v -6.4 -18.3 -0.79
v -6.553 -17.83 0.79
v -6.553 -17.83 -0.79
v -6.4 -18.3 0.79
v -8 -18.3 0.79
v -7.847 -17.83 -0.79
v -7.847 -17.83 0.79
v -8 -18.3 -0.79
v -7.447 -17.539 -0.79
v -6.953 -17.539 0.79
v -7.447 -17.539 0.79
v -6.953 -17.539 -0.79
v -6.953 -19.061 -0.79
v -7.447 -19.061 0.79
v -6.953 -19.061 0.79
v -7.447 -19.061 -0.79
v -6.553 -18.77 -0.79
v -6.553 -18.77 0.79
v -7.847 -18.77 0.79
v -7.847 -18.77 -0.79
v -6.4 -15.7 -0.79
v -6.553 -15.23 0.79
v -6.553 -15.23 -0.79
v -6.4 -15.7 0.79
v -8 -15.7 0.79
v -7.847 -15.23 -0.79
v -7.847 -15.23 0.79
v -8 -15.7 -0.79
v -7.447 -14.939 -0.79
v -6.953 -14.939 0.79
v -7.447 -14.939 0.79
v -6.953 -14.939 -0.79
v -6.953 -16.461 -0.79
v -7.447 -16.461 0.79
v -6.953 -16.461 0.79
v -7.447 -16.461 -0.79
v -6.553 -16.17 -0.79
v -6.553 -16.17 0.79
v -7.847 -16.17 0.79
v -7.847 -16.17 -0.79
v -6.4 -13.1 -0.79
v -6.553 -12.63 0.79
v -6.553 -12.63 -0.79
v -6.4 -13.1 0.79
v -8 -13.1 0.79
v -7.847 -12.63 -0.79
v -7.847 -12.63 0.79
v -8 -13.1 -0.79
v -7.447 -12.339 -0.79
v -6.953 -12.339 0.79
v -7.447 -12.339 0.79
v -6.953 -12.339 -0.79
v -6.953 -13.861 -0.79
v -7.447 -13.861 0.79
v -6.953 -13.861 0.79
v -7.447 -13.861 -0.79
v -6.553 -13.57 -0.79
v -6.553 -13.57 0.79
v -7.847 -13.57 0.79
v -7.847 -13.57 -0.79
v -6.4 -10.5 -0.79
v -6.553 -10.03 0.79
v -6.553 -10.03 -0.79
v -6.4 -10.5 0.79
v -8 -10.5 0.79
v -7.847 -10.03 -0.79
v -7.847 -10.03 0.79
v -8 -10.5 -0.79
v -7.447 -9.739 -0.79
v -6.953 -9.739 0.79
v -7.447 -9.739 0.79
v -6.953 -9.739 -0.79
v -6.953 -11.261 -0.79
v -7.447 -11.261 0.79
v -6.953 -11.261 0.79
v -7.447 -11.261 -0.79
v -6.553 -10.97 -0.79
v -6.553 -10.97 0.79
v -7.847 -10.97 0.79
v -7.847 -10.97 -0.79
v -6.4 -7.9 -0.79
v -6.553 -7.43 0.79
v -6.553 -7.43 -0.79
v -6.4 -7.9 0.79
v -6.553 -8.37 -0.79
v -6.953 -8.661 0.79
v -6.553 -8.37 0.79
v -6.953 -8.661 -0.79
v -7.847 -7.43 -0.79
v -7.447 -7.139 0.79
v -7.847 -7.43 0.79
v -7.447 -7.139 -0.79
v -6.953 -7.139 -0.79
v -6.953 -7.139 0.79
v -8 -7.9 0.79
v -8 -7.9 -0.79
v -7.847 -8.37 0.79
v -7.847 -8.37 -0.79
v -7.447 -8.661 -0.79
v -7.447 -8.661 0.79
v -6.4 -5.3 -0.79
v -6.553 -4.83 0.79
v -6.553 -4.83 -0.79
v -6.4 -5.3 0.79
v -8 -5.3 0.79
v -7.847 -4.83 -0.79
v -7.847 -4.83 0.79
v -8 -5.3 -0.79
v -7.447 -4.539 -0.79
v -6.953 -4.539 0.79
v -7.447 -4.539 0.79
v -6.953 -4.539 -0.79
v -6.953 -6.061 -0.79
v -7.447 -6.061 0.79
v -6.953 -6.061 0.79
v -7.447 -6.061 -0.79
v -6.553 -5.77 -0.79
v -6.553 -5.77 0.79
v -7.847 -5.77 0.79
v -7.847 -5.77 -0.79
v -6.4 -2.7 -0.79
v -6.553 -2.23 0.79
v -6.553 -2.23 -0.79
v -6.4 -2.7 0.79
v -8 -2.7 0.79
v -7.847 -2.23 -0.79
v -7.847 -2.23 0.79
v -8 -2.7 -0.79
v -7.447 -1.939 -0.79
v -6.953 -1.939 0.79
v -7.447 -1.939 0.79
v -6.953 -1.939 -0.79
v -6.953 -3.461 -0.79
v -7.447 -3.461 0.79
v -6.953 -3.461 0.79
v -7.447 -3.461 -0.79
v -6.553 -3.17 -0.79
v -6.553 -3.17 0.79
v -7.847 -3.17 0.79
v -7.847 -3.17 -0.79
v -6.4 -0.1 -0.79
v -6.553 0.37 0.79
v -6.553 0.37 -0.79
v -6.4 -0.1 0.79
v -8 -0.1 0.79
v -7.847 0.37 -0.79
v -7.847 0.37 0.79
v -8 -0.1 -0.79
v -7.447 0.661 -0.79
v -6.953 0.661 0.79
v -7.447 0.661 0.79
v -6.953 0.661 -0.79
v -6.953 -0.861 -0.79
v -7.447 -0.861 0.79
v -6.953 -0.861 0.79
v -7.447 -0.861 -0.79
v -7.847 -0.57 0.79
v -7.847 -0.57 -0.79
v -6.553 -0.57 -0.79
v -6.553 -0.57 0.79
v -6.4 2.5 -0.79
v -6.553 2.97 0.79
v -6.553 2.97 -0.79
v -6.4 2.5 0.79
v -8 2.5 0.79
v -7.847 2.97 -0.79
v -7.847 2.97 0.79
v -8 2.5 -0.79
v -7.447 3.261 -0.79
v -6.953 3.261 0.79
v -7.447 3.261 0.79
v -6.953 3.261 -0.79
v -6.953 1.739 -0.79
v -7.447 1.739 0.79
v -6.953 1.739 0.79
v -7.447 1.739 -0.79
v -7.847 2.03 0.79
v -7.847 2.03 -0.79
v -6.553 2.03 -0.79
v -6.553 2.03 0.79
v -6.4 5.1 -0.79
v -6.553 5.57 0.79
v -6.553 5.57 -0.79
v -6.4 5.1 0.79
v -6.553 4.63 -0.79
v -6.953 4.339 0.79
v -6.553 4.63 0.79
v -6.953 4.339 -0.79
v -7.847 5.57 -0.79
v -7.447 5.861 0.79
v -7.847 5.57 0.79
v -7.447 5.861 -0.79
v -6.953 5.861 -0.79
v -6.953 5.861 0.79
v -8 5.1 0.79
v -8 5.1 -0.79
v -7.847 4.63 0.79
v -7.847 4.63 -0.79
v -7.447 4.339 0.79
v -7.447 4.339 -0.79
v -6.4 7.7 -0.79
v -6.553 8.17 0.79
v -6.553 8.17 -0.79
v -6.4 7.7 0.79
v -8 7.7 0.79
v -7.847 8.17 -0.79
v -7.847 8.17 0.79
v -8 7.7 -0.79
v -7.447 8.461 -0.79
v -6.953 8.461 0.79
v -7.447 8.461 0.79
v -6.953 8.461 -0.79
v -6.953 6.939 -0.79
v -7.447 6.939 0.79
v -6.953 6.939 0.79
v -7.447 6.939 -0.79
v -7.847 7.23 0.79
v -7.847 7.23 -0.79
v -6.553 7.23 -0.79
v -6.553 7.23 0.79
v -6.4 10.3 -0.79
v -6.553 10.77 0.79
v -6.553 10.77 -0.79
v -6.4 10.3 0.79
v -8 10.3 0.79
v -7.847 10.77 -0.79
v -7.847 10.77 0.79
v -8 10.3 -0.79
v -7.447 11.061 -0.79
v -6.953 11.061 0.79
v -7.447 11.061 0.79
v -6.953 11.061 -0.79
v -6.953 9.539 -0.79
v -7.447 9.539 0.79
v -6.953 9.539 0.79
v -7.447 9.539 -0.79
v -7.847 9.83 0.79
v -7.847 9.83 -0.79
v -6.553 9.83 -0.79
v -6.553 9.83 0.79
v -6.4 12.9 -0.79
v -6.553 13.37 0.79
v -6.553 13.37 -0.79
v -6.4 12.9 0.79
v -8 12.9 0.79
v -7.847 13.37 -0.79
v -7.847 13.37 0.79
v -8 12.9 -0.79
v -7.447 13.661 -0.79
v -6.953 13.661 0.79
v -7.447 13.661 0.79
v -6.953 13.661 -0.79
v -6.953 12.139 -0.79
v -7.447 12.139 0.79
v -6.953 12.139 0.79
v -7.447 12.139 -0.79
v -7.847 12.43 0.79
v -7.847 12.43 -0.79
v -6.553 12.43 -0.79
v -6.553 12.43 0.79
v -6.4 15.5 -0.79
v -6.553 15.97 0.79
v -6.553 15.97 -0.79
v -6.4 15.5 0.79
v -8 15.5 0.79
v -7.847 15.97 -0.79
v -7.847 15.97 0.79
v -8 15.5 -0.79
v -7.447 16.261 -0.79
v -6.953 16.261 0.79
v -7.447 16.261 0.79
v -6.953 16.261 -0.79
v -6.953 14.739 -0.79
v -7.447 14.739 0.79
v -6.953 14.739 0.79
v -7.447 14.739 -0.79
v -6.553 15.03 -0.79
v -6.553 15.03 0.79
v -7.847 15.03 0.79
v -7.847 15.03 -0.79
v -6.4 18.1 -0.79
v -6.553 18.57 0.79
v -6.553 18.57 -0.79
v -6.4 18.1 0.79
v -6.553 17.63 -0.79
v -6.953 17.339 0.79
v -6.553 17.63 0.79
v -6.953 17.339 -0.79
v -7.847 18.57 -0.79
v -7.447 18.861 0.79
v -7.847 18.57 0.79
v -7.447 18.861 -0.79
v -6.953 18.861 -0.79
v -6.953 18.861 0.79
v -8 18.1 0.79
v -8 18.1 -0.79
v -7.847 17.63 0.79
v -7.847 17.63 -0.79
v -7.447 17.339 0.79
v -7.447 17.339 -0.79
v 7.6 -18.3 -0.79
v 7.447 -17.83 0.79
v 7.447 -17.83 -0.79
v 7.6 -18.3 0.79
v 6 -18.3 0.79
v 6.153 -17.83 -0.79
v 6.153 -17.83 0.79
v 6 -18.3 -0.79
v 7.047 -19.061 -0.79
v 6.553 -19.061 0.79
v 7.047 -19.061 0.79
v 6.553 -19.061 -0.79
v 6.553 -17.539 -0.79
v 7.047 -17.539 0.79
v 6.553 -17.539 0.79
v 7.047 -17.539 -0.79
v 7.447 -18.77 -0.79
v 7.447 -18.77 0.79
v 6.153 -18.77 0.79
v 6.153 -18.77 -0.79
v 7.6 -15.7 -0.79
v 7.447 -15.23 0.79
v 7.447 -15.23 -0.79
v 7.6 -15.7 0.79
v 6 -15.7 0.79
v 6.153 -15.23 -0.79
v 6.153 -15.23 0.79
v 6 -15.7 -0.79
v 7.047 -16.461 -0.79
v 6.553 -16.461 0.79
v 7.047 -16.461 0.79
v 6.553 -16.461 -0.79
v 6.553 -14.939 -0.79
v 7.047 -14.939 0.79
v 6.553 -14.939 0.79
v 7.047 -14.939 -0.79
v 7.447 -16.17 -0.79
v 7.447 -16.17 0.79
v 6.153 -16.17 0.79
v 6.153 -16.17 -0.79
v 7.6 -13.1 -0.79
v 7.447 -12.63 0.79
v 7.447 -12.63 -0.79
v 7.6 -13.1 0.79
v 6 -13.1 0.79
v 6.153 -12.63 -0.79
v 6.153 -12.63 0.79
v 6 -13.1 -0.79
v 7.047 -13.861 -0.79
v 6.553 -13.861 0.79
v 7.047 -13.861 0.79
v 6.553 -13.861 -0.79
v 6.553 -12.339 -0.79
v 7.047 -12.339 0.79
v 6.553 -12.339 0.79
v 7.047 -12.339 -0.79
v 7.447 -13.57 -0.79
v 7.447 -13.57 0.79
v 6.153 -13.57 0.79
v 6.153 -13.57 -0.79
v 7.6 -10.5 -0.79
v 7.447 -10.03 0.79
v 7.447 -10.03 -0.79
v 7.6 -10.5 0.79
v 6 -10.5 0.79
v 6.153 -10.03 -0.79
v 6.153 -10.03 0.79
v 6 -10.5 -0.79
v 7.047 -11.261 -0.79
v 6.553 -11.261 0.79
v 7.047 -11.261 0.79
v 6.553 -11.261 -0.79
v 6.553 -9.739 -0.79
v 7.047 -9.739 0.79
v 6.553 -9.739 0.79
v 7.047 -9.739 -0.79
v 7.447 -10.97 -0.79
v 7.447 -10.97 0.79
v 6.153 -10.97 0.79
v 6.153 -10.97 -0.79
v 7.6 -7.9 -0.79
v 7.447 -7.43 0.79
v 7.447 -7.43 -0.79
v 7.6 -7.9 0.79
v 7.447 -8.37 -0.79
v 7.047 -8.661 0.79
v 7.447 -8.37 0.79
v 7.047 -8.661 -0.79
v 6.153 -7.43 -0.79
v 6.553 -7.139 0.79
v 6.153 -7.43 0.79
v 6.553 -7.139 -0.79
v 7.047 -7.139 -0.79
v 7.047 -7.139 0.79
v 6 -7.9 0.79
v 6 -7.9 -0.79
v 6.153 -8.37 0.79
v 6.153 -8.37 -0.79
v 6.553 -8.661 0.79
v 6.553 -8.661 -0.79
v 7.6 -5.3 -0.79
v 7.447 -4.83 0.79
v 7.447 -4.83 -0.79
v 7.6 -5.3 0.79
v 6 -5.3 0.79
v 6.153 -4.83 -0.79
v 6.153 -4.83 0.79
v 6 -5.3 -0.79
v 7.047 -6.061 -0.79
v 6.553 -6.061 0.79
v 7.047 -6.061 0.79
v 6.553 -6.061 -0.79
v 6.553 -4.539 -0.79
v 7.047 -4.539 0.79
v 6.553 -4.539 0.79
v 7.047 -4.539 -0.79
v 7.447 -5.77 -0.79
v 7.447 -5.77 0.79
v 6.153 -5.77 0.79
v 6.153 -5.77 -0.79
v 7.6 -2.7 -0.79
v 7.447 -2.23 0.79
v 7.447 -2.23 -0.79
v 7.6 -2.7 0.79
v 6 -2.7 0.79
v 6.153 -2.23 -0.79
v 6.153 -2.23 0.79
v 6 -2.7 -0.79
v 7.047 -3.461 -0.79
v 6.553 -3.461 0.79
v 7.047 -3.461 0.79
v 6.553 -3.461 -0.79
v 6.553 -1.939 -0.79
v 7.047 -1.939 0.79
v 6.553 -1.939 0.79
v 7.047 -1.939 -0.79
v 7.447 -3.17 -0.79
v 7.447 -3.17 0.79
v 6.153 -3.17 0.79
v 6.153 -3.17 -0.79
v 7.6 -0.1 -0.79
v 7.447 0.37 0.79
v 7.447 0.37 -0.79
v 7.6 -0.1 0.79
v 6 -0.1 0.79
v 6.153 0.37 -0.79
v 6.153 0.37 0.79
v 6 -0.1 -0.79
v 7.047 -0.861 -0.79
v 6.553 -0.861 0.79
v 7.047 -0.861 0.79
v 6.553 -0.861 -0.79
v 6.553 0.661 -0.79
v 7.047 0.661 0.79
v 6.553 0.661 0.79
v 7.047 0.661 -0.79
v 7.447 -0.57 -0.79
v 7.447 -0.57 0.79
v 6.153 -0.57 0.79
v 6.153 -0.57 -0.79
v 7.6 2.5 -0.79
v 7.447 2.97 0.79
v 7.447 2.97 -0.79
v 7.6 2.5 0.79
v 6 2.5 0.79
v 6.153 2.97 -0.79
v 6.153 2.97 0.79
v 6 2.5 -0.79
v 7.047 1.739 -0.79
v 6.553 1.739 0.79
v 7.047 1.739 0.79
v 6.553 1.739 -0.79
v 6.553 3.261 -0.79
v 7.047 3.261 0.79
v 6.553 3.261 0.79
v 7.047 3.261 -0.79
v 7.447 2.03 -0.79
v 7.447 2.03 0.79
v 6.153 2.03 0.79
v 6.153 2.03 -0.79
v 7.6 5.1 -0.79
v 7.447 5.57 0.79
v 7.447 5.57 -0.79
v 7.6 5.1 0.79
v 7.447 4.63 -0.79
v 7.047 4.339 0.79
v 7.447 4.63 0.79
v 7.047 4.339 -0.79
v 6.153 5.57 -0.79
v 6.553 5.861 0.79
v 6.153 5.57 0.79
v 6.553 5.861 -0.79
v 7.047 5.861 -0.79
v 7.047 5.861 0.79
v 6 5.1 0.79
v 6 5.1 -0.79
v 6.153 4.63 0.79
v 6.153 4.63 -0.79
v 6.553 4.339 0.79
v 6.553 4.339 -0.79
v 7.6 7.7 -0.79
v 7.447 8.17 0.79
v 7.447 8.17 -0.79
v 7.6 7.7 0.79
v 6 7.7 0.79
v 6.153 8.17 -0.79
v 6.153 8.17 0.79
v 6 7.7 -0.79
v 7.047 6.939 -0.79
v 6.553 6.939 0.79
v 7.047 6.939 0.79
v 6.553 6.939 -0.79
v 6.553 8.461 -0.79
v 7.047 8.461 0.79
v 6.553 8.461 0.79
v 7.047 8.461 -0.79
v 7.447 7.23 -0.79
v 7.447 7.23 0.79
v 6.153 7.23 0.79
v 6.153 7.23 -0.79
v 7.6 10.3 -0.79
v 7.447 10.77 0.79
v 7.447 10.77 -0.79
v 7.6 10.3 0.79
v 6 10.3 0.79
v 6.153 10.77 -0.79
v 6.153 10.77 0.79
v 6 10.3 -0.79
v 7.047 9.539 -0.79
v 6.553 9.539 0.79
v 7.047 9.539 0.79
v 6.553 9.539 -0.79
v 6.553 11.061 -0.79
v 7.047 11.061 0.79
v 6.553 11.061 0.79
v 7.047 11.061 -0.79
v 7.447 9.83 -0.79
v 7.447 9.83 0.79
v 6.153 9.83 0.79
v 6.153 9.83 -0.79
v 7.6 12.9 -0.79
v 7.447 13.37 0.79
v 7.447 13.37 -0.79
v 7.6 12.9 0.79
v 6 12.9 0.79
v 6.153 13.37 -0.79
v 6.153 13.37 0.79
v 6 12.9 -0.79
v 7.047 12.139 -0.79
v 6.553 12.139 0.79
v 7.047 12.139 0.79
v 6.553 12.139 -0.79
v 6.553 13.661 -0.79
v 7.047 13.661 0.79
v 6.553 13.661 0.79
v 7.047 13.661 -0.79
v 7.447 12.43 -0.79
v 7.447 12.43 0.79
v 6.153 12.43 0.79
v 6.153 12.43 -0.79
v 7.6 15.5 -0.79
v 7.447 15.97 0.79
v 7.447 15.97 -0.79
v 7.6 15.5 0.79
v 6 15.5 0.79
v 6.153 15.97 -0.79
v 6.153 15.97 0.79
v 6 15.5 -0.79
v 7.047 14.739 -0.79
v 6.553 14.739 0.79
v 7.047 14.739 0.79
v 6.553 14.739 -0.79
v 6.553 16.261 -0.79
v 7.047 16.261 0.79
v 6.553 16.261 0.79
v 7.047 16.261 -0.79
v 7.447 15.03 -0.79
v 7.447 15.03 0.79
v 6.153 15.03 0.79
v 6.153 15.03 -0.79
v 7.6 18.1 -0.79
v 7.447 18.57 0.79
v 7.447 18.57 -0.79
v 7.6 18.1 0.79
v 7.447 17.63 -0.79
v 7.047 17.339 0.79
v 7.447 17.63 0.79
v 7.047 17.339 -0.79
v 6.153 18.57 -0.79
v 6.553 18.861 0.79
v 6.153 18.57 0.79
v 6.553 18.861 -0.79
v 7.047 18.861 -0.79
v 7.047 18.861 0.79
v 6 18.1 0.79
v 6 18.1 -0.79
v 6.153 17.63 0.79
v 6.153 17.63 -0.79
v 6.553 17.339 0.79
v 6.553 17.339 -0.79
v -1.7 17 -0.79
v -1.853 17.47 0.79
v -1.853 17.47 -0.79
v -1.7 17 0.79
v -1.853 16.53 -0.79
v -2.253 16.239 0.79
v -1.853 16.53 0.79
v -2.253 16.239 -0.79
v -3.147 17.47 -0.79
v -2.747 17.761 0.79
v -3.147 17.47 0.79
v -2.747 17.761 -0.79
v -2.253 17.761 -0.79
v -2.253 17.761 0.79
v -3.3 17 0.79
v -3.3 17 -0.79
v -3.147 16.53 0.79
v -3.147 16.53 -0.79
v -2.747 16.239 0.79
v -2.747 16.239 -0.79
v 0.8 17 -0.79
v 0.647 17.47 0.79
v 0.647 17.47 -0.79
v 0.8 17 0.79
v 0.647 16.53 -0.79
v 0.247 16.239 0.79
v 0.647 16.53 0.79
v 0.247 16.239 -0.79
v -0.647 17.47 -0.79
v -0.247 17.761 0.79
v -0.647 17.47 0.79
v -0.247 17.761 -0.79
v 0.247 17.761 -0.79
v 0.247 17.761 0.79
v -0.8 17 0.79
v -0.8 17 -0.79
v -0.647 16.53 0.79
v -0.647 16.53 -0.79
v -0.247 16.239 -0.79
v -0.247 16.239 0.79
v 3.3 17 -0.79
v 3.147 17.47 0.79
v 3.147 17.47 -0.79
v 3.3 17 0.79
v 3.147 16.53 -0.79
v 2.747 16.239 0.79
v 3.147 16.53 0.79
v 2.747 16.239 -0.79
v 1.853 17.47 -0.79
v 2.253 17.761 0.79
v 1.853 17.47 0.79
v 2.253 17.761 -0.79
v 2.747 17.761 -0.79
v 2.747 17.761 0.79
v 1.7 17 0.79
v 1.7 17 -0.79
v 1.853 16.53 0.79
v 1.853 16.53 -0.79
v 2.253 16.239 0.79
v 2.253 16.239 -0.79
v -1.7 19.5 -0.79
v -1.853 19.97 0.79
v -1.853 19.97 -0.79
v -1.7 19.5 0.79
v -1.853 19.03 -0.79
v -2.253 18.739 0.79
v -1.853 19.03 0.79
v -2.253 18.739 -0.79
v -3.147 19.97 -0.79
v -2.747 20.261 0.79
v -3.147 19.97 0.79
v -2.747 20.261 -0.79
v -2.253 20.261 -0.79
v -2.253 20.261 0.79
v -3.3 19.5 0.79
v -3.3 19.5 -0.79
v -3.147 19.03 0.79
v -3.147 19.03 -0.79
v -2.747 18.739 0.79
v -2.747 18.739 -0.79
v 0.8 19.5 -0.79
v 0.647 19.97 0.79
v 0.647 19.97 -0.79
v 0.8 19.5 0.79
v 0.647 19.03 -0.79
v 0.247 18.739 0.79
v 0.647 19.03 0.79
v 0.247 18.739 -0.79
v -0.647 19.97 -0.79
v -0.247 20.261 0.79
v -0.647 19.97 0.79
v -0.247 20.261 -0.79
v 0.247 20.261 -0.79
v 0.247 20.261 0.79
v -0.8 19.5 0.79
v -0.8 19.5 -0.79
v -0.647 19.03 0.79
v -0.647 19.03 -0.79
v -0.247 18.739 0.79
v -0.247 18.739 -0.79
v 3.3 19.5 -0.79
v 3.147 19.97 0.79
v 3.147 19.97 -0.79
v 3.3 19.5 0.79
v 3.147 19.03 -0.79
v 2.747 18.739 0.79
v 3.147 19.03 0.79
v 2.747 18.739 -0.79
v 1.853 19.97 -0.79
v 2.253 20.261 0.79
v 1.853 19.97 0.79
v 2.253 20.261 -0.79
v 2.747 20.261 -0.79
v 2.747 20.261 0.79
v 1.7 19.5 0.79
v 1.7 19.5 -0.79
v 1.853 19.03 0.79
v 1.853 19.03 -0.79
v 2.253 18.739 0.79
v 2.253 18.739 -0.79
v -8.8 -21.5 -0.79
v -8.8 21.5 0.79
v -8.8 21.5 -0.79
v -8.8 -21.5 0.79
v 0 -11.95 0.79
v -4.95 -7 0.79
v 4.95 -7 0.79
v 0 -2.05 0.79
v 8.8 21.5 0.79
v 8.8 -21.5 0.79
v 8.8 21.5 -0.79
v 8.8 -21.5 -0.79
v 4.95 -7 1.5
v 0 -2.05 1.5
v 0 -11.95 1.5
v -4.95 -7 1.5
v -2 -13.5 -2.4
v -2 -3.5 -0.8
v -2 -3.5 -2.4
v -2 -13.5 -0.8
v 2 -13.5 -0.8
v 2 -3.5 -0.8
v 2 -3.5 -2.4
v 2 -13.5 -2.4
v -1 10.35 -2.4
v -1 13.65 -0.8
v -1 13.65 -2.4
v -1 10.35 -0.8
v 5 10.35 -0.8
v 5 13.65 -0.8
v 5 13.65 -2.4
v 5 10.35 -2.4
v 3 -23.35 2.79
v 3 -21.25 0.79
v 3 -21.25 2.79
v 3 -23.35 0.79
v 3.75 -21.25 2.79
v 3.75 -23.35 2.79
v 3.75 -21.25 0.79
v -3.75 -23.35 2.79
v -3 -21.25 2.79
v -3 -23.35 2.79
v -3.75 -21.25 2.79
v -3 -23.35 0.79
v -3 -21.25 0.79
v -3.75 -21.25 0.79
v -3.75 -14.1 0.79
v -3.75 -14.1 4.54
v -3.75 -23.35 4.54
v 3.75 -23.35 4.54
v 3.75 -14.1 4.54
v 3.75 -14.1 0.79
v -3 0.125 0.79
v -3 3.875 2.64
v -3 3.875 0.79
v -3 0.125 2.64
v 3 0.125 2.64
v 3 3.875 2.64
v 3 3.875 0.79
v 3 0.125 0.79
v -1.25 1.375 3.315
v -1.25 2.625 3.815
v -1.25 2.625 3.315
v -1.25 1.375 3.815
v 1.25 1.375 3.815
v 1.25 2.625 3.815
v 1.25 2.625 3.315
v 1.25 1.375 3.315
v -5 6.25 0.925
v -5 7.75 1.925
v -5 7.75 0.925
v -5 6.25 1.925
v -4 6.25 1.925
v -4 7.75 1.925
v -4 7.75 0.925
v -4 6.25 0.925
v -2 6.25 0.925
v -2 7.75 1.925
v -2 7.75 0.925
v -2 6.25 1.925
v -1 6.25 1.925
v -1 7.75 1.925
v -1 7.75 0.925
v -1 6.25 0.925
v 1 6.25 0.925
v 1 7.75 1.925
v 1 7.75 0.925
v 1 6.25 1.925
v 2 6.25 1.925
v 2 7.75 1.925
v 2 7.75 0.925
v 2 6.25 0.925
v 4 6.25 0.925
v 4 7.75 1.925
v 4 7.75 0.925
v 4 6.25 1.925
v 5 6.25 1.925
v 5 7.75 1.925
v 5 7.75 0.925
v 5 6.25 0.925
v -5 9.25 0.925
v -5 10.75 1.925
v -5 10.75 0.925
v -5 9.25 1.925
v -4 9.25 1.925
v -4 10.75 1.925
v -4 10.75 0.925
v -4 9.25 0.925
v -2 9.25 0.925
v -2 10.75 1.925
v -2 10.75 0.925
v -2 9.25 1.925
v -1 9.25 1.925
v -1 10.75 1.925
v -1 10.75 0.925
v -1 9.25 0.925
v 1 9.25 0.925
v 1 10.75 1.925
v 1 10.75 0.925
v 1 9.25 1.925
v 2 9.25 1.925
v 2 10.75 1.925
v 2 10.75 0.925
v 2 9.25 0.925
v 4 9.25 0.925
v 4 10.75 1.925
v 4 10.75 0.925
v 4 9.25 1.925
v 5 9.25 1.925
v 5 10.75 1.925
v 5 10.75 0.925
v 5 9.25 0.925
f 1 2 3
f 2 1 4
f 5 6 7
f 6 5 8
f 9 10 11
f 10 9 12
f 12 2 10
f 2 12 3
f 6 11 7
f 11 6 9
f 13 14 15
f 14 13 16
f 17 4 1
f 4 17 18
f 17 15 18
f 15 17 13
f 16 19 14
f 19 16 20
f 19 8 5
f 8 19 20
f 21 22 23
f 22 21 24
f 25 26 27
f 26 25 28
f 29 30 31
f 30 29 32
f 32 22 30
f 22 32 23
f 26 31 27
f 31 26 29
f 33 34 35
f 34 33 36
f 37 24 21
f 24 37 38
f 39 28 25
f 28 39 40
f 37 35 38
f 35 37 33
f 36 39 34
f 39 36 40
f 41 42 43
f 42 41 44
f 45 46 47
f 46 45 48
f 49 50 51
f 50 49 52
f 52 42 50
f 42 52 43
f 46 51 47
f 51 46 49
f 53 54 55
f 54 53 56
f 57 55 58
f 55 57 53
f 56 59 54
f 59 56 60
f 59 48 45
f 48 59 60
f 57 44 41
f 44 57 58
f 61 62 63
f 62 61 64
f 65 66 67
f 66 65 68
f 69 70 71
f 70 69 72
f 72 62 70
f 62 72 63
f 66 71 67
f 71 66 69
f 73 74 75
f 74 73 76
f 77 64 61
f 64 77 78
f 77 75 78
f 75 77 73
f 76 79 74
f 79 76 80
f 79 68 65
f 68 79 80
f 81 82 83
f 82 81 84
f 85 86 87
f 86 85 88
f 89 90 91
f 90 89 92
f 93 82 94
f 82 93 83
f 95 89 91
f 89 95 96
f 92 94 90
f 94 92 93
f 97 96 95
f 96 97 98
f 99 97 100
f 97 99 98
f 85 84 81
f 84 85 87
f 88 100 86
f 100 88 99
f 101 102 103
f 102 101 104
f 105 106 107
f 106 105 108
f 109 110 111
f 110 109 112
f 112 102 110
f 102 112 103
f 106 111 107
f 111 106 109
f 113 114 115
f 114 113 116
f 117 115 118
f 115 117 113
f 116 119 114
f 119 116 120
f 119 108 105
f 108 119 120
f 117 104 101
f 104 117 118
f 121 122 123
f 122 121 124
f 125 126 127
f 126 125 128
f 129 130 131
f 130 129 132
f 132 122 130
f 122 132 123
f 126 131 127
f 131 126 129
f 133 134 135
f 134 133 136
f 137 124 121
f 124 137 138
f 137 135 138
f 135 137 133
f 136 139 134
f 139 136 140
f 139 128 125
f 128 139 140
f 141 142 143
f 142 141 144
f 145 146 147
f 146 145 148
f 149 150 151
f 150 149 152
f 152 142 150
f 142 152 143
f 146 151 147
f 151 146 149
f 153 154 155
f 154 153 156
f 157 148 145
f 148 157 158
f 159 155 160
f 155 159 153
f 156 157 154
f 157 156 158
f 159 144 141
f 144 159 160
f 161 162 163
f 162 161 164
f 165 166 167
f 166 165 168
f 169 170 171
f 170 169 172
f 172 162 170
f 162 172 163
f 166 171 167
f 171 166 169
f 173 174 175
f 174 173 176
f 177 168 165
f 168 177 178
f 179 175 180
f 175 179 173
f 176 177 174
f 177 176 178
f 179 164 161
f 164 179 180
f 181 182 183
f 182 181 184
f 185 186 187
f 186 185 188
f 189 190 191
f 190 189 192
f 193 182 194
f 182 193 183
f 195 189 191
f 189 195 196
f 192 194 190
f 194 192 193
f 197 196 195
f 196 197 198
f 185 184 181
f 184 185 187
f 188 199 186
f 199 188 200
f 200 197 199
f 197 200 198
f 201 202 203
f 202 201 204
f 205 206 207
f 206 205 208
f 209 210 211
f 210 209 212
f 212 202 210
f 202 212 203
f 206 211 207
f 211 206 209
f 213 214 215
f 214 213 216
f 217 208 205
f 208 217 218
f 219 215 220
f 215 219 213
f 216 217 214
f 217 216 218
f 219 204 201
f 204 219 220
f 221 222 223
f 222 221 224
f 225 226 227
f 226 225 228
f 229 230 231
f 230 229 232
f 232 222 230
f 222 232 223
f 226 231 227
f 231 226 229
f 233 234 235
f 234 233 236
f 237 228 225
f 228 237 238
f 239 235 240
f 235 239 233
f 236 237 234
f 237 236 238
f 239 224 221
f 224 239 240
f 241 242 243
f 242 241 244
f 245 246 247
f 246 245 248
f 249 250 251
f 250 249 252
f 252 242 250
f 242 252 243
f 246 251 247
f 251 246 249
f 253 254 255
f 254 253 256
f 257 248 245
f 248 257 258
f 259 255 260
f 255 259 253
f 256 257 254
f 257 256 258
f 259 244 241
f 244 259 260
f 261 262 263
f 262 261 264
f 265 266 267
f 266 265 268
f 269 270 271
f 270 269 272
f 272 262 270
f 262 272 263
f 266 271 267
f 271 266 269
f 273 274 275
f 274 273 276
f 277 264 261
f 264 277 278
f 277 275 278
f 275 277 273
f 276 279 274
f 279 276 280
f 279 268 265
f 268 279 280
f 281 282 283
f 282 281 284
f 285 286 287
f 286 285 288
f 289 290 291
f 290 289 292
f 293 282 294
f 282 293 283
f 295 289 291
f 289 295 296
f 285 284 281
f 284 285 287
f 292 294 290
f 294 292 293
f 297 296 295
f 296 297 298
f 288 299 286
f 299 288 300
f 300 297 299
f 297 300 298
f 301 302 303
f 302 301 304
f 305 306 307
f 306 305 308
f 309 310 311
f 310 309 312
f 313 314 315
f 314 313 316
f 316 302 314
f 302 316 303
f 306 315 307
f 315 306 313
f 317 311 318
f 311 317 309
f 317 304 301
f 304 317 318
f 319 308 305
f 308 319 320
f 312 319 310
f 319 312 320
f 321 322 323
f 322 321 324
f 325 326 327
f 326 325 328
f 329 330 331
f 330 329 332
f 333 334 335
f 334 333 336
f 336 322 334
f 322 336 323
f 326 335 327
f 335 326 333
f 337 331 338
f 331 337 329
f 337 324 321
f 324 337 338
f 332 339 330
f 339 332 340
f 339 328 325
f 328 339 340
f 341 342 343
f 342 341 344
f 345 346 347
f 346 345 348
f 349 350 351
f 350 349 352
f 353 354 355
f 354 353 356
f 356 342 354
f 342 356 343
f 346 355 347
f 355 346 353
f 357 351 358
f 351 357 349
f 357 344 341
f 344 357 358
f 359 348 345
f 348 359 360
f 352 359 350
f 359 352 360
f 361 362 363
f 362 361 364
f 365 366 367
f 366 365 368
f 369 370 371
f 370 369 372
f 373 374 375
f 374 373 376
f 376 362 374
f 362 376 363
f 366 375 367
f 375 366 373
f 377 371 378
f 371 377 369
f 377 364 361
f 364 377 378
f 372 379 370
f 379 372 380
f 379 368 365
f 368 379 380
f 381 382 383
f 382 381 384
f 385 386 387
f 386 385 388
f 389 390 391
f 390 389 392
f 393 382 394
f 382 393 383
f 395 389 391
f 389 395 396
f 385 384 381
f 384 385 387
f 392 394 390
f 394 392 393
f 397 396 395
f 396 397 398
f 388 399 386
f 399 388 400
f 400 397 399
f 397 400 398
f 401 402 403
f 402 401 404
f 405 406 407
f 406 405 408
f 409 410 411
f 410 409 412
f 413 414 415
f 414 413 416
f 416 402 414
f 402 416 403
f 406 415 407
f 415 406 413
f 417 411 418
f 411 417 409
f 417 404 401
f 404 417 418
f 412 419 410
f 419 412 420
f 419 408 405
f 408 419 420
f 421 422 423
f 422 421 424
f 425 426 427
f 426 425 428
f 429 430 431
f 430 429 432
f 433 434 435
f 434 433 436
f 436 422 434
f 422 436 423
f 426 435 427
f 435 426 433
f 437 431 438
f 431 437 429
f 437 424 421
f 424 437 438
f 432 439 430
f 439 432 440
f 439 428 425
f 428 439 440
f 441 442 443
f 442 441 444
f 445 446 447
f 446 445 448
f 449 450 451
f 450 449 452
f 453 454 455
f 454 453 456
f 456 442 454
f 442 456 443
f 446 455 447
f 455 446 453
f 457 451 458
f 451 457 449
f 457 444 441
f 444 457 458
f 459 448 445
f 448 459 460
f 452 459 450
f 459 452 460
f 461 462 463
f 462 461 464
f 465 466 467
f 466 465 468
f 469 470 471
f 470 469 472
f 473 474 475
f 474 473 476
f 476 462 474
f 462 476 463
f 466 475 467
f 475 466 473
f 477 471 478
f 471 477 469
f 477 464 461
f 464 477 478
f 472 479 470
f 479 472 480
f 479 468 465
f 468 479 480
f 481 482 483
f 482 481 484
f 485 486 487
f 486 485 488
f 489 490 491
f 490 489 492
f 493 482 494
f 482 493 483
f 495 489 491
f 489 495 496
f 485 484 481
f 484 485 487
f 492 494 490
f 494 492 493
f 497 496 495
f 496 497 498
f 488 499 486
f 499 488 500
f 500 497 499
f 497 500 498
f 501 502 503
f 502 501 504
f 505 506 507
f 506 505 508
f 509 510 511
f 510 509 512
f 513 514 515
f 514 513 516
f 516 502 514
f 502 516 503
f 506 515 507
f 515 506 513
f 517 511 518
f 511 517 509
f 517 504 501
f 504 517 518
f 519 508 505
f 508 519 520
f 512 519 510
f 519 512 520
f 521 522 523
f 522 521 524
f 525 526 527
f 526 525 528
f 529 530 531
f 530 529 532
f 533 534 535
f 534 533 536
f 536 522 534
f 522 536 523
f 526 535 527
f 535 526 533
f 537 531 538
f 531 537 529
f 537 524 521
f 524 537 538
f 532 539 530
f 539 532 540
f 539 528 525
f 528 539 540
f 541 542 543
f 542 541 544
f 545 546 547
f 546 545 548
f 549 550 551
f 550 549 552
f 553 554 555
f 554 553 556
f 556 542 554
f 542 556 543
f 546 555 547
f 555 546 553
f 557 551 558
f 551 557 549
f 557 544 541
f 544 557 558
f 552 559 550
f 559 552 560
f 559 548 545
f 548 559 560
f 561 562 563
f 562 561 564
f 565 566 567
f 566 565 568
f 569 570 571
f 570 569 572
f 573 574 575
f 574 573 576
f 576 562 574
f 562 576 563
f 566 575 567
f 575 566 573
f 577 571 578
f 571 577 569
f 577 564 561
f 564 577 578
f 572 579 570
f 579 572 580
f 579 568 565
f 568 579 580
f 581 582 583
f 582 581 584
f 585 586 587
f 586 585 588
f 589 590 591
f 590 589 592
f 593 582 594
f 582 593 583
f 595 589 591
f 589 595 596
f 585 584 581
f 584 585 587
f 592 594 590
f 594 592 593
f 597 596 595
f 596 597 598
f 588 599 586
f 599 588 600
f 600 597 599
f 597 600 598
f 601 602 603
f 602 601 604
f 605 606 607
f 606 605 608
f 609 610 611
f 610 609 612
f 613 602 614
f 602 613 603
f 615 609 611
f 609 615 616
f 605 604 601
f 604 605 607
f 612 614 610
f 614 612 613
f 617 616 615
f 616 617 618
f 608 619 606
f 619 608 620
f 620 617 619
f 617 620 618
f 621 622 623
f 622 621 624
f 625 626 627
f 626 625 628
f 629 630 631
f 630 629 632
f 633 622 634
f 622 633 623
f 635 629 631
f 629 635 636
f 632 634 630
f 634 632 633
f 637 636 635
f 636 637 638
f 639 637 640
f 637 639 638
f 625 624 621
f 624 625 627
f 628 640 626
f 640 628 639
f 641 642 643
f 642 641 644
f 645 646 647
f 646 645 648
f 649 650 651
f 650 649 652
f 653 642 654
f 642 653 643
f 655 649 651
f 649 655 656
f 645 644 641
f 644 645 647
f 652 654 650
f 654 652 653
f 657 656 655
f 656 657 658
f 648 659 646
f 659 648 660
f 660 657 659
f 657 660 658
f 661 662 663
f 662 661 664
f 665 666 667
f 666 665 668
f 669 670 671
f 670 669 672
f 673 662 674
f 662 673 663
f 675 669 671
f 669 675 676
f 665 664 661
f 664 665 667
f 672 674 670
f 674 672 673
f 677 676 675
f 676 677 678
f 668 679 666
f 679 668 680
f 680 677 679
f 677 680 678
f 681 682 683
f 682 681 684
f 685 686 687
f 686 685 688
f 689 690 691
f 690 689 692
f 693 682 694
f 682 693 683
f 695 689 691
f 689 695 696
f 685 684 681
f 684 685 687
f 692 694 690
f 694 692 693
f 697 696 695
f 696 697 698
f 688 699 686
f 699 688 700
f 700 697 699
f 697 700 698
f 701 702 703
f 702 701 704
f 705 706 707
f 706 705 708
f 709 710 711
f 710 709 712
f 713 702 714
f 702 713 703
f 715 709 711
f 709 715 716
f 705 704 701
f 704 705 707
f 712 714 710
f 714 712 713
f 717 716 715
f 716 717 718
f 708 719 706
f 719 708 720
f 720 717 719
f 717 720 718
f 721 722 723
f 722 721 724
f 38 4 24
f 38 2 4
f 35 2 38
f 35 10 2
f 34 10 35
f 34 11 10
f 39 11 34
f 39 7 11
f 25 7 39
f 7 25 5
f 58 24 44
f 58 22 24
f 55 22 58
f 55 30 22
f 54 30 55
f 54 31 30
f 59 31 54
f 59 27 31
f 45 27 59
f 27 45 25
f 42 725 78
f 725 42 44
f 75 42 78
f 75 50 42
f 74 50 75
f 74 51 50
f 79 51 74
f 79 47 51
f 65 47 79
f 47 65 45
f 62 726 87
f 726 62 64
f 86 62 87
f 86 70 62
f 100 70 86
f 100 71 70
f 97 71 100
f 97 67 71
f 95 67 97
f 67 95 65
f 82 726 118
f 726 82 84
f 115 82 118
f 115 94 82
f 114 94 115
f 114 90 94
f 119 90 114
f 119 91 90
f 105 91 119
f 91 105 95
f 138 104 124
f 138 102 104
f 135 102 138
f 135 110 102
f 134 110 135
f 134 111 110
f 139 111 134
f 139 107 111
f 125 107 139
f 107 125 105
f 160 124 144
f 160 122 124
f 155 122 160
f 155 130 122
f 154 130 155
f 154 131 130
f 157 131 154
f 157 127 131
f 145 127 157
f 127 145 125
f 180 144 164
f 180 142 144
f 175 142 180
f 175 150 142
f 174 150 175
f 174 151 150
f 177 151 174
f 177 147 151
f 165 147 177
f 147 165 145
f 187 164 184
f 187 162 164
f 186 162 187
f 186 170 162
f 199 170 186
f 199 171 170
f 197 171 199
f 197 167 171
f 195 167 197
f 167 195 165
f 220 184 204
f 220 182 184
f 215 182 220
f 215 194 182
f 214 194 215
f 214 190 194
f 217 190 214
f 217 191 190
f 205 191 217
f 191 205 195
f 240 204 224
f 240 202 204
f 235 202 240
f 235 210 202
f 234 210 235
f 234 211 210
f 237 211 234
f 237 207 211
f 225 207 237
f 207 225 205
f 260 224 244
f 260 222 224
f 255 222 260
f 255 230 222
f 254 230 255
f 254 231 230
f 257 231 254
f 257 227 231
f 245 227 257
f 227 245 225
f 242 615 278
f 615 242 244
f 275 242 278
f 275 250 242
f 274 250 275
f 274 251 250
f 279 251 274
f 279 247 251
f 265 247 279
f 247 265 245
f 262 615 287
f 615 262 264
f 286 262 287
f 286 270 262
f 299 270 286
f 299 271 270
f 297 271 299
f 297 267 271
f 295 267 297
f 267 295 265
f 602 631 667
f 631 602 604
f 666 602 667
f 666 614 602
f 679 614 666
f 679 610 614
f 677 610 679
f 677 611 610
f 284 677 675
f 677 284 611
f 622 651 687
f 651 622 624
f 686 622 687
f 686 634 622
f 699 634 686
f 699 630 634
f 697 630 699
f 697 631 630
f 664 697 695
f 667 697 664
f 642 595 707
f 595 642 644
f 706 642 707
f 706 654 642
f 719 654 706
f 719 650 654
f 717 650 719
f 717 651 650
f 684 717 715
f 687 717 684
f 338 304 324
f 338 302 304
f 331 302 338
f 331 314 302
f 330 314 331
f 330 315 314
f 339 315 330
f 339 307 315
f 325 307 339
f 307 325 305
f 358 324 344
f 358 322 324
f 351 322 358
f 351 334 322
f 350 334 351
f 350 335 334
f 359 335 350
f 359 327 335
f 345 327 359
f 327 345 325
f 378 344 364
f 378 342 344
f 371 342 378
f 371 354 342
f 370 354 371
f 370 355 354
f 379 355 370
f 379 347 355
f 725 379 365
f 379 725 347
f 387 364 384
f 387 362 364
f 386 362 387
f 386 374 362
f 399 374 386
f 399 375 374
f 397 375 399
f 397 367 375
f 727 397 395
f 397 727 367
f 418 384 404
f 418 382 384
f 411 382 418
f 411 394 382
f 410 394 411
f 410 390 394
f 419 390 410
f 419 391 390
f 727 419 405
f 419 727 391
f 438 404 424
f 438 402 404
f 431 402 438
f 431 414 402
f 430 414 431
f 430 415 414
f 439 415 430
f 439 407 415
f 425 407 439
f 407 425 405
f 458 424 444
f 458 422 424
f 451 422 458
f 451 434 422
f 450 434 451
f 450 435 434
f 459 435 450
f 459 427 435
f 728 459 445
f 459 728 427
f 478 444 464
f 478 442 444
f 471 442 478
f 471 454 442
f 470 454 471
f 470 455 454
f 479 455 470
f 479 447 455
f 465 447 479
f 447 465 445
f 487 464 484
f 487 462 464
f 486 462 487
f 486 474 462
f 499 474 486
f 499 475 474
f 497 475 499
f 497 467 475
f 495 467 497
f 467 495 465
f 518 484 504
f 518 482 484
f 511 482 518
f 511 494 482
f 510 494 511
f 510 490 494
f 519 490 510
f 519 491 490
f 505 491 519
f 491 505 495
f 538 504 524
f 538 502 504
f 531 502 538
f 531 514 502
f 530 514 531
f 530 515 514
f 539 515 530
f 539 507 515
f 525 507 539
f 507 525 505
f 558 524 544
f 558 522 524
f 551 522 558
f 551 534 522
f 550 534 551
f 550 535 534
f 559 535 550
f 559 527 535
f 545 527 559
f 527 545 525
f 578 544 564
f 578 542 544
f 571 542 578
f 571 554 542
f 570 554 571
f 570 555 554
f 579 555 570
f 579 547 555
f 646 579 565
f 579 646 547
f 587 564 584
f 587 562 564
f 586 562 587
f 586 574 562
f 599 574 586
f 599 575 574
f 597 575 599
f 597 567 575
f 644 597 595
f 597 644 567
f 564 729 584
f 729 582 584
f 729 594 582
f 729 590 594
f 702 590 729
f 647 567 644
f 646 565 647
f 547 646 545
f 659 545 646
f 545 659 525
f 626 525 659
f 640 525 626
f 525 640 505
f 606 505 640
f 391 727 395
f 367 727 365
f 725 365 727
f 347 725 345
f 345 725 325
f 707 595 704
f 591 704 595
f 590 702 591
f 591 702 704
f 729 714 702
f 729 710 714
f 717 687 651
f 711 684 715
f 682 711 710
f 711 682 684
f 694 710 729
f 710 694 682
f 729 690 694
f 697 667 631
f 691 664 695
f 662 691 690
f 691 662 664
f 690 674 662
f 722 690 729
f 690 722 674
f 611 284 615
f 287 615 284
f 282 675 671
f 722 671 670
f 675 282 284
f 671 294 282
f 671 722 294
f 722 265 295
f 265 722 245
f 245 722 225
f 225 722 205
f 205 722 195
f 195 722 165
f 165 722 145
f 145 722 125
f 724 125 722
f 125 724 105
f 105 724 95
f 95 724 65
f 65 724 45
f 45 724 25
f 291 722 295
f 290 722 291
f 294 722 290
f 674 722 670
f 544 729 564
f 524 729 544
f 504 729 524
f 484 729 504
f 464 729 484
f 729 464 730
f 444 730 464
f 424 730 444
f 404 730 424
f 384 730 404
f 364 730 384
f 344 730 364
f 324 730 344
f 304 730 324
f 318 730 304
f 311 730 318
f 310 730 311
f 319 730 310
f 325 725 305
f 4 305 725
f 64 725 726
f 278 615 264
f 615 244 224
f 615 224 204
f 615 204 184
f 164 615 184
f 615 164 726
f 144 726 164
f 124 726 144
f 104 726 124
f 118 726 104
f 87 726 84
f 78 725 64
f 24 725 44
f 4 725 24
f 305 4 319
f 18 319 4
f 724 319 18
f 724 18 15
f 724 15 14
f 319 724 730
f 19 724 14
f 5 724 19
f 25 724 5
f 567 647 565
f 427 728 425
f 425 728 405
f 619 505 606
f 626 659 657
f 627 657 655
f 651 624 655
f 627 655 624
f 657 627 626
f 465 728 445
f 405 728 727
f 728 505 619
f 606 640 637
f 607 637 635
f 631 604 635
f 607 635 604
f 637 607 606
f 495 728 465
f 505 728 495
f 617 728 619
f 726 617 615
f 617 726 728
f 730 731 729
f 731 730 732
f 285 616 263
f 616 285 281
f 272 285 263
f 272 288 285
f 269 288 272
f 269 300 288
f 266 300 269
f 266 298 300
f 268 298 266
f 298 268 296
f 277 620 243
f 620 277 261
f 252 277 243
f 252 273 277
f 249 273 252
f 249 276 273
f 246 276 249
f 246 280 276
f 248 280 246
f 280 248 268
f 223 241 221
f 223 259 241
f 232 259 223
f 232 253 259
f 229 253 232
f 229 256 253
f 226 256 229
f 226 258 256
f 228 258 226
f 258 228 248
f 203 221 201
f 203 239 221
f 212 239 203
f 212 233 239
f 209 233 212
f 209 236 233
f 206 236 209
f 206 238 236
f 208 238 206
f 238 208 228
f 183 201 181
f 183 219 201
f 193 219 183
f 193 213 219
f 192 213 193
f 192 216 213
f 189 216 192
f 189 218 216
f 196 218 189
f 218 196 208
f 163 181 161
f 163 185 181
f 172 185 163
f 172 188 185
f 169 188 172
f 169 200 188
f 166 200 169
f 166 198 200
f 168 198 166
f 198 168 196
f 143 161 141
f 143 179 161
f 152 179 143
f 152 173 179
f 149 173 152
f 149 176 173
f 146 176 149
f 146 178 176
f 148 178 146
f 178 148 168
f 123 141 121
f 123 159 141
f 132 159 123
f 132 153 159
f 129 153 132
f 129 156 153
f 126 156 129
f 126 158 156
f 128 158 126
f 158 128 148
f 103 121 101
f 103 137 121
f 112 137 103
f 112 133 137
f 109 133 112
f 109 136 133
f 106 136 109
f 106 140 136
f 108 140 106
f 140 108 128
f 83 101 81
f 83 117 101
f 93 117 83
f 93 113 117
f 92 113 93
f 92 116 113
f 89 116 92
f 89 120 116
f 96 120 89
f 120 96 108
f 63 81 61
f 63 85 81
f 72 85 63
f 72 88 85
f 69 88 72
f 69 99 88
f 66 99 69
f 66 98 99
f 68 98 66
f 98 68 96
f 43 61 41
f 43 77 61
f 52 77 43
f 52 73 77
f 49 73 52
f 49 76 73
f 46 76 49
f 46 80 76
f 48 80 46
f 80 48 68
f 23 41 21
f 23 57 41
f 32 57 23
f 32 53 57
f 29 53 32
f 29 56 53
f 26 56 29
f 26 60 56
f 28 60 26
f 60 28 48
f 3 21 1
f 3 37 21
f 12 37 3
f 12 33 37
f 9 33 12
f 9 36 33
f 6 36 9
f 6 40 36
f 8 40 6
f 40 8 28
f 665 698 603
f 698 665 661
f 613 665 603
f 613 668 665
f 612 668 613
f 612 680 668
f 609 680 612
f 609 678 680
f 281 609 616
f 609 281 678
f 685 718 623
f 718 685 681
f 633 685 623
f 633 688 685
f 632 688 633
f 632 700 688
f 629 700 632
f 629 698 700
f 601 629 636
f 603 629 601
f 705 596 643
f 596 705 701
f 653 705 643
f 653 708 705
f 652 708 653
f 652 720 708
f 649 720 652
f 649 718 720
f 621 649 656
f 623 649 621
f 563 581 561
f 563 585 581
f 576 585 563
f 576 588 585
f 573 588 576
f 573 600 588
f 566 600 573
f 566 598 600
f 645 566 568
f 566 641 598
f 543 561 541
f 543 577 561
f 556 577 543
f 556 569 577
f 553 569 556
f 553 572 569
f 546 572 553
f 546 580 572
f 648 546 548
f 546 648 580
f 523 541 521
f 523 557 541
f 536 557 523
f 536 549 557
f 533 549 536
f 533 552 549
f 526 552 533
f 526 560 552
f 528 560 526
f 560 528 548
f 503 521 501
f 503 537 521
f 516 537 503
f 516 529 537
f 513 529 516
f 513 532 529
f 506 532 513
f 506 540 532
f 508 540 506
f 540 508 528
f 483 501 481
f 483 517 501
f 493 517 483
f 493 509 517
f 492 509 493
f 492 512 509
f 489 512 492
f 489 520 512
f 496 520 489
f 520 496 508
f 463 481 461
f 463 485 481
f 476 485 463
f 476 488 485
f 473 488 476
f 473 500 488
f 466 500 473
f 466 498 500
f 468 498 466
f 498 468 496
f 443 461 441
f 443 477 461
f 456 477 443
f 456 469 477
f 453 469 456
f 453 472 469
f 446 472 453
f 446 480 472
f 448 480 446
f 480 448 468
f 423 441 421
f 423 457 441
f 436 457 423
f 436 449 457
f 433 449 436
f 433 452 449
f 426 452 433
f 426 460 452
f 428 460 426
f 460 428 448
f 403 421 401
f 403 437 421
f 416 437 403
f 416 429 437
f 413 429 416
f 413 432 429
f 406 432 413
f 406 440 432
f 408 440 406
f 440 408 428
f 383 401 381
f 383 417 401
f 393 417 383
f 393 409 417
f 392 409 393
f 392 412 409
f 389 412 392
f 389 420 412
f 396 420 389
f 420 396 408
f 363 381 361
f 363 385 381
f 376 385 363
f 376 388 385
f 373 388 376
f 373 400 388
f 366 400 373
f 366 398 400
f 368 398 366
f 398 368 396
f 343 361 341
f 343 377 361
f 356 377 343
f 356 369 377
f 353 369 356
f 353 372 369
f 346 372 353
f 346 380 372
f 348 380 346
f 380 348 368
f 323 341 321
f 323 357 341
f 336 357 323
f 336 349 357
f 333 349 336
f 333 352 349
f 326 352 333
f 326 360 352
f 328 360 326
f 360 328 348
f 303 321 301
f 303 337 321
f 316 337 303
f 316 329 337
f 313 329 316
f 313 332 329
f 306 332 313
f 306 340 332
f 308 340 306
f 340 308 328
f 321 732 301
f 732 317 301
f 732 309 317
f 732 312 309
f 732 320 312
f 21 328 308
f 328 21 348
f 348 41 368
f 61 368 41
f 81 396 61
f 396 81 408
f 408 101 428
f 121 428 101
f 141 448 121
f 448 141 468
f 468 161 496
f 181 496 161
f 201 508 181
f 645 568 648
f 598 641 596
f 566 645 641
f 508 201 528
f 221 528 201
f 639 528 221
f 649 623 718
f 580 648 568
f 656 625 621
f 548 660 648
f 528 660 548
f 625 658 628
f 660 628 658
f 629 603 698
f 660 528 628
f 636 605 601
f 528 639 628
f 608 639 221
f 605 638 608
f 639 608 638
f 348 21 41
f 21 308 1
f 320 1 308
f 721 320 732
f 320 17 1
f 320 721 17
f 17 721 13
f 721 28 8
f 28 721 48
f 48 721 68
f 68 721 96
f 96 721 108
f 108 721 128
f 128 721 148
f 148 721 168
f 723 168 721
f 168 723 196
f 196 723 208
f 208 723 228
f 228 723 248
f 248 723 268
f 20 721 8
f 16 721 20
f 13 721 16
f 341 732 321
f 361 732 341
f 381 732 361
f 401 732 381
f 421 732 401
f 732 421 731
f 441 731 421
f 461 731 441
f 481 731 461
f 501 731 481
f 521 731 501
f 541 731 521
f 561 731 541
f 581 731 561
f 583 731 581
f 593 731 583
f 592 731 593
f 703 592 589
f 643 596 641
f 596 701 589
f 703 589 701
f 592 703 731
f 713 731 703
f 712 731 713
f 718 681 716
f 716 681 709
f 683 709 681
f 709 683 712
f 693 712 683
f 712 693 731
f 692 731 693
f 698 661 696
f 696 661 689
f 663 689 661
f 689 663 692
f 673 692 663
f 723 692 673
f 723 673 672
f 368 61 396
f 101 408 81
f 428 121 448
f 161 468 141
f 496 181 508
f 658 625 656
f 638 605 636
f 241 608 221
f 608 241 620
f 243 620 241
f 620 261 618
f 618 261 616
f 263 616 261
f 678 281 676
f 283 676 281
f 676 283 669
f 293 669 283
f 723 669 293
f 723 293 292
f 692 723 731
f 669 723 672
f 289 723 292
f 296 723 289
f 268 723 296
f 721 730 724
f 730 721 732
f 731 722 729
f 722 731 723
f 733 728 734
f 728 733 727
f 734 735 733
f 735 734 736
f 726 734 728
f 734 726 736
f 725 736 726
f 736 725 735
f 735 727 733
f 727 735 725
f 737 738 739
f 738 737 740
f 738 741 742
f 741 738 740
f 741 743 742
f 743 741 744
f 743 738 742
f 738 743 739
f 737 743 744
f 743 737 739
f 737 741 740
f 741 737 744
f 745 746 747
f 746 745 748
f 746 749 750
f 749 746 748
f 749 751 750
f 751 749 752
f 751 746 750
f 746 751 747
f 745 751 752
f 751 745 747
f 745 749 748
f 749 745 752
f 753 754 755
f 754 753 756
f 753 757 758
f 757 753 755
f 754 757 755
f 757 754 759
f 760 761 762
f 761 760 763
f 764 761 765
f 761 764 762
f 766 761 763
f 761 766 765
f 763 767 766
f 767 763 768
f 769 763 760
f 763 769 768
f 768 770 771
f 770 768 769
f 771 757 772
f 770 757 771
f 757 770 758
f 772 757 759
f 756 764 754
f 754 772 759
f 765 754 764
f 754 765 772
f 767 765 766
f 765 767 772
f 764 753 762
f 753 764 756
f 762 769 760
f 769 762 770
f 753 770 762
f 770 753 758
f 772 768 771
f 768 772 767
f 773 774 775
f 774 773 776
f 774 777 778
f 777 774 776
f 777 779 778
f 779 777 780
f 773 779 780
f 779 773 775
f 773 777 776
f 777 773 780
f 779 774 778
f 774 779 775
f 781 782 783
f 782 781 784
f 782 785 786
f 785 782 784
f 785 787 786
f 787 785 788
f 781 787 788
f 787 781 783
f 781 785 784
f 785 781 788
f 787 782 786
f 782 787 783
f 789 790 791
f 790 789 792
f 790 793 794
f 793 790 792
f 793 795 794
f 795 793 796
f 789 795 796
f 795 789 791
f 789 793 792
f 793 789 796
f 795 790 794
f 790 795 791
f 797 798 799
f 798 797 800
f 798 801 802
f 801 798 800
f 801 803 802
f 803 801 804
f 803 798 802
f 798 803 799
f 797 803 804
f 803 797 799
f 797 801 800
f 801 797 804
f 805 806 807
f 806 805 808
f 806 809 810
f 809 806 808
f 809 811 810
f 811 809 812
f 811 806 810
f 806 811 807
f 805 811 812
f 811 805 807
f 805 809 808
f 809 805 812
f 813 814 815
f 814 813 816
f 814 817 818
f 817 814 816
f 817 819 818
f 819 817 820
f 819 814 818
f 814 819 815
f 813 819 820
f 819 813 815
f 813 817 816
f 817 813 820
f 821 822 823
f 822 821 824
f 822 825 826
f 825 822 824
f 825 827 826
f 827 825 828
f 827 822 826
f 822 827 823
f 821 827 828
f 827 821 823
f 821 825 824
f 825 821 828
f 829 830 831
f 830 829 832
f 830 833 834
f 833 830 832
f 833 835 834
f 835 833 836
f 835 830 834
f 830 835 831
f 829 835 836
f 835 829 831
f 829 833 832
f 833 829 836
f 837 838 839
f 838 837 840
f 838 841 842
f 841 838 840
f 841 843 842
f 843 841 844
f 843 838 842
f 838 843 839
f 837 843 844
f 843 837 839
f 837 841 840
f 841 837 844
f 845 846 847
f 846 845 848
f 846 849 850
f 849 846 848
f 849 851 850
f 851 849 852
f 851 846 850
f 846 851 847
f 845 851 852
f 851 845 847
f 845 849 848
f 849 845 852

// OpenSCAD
// arduino nano without header pins
// use <arduino.scad>

module arduino() {

    difference() {
        color([0,151/255,156/255,1]) arduino_circuit_board();
        color("black") arduino_holes();
    }

    color("DimGray") arduino_chips();
    arduino_usb();
    arduino_reset();
    color("white") arduino_caps();
}

module arduino_reset() {
    translate([0,2,1.58/2+1.85/2]) {
        color("silver")
            cube([6,3.75,1.85], center=true);
        translate([0,0,1.85])
            color("white") cube([2.5, 1.25,0.5], center=true);
    }
}

module arduino_caps() {
    translate([-1.5,4,0])
    for( j = [1:2]) {
        for( i = [-1:2] ) {
            translate([i*3,j*3, 0.5+1.85/2])
                cube([1,1.5,1], center=true);
        }
    }
}

module arduino_circuit_board() {
    cube([17.6, 43, 1.58], center=true);
}

module arduino_usb() {
    erase_padding = 0.5;
    color("Silver")
    translate([
        0,
        (-43/2+9.25/2)-1.85,
        3.75/2+1.58/2
    ]) {
        difference() {
            cube([7.5,9.25,3.75], center=true);
            union() {
                translate([7.5/2-.5/2,-9.25/2+1.85/2,-1])
                    cube([.5+erase_padding,1.85+erase_padding,1.75+erase_padding], center=true);
                translate([-7.5/2+.5/2,-9.25/2+1.85/2,-1])
                    cube([.5+erase_padding,1.85+erase_padding,1.75+erase_padding], center=true);
            }
        }
    }
}

module arduino_chips() {
    translate([0,-7,1])
        rotate([0,0,45])
            cube([7,7,1], center=true);

    translate([0,-8.5,-1.6])
        cube([4,10,1.6], center=true);

    translate([2,12,-1.6])
        cube([6,3.3,1.6], center=true);
}

module arduino_holes() {
    $fn = 10;
    hole_size = 0.8;
    translate([-17.2/2+1.4,-43/2+0.6,0]) {
        for(j=[0:1]) {
            for(i=[1:15]) {
                translate([j*14,2.6*i,-1])
                    cylinder(r=hole_size, h=2);
            }
        }
    }

    translate([-5,14.5,0])
        for( j = [1:2] ) {
            for( i = [1:3] ) {
                translate([i*2.5,j*2.5,-1])
                    cylinder(r=hole_size,h=2);
            }
        }
}

arduino();
